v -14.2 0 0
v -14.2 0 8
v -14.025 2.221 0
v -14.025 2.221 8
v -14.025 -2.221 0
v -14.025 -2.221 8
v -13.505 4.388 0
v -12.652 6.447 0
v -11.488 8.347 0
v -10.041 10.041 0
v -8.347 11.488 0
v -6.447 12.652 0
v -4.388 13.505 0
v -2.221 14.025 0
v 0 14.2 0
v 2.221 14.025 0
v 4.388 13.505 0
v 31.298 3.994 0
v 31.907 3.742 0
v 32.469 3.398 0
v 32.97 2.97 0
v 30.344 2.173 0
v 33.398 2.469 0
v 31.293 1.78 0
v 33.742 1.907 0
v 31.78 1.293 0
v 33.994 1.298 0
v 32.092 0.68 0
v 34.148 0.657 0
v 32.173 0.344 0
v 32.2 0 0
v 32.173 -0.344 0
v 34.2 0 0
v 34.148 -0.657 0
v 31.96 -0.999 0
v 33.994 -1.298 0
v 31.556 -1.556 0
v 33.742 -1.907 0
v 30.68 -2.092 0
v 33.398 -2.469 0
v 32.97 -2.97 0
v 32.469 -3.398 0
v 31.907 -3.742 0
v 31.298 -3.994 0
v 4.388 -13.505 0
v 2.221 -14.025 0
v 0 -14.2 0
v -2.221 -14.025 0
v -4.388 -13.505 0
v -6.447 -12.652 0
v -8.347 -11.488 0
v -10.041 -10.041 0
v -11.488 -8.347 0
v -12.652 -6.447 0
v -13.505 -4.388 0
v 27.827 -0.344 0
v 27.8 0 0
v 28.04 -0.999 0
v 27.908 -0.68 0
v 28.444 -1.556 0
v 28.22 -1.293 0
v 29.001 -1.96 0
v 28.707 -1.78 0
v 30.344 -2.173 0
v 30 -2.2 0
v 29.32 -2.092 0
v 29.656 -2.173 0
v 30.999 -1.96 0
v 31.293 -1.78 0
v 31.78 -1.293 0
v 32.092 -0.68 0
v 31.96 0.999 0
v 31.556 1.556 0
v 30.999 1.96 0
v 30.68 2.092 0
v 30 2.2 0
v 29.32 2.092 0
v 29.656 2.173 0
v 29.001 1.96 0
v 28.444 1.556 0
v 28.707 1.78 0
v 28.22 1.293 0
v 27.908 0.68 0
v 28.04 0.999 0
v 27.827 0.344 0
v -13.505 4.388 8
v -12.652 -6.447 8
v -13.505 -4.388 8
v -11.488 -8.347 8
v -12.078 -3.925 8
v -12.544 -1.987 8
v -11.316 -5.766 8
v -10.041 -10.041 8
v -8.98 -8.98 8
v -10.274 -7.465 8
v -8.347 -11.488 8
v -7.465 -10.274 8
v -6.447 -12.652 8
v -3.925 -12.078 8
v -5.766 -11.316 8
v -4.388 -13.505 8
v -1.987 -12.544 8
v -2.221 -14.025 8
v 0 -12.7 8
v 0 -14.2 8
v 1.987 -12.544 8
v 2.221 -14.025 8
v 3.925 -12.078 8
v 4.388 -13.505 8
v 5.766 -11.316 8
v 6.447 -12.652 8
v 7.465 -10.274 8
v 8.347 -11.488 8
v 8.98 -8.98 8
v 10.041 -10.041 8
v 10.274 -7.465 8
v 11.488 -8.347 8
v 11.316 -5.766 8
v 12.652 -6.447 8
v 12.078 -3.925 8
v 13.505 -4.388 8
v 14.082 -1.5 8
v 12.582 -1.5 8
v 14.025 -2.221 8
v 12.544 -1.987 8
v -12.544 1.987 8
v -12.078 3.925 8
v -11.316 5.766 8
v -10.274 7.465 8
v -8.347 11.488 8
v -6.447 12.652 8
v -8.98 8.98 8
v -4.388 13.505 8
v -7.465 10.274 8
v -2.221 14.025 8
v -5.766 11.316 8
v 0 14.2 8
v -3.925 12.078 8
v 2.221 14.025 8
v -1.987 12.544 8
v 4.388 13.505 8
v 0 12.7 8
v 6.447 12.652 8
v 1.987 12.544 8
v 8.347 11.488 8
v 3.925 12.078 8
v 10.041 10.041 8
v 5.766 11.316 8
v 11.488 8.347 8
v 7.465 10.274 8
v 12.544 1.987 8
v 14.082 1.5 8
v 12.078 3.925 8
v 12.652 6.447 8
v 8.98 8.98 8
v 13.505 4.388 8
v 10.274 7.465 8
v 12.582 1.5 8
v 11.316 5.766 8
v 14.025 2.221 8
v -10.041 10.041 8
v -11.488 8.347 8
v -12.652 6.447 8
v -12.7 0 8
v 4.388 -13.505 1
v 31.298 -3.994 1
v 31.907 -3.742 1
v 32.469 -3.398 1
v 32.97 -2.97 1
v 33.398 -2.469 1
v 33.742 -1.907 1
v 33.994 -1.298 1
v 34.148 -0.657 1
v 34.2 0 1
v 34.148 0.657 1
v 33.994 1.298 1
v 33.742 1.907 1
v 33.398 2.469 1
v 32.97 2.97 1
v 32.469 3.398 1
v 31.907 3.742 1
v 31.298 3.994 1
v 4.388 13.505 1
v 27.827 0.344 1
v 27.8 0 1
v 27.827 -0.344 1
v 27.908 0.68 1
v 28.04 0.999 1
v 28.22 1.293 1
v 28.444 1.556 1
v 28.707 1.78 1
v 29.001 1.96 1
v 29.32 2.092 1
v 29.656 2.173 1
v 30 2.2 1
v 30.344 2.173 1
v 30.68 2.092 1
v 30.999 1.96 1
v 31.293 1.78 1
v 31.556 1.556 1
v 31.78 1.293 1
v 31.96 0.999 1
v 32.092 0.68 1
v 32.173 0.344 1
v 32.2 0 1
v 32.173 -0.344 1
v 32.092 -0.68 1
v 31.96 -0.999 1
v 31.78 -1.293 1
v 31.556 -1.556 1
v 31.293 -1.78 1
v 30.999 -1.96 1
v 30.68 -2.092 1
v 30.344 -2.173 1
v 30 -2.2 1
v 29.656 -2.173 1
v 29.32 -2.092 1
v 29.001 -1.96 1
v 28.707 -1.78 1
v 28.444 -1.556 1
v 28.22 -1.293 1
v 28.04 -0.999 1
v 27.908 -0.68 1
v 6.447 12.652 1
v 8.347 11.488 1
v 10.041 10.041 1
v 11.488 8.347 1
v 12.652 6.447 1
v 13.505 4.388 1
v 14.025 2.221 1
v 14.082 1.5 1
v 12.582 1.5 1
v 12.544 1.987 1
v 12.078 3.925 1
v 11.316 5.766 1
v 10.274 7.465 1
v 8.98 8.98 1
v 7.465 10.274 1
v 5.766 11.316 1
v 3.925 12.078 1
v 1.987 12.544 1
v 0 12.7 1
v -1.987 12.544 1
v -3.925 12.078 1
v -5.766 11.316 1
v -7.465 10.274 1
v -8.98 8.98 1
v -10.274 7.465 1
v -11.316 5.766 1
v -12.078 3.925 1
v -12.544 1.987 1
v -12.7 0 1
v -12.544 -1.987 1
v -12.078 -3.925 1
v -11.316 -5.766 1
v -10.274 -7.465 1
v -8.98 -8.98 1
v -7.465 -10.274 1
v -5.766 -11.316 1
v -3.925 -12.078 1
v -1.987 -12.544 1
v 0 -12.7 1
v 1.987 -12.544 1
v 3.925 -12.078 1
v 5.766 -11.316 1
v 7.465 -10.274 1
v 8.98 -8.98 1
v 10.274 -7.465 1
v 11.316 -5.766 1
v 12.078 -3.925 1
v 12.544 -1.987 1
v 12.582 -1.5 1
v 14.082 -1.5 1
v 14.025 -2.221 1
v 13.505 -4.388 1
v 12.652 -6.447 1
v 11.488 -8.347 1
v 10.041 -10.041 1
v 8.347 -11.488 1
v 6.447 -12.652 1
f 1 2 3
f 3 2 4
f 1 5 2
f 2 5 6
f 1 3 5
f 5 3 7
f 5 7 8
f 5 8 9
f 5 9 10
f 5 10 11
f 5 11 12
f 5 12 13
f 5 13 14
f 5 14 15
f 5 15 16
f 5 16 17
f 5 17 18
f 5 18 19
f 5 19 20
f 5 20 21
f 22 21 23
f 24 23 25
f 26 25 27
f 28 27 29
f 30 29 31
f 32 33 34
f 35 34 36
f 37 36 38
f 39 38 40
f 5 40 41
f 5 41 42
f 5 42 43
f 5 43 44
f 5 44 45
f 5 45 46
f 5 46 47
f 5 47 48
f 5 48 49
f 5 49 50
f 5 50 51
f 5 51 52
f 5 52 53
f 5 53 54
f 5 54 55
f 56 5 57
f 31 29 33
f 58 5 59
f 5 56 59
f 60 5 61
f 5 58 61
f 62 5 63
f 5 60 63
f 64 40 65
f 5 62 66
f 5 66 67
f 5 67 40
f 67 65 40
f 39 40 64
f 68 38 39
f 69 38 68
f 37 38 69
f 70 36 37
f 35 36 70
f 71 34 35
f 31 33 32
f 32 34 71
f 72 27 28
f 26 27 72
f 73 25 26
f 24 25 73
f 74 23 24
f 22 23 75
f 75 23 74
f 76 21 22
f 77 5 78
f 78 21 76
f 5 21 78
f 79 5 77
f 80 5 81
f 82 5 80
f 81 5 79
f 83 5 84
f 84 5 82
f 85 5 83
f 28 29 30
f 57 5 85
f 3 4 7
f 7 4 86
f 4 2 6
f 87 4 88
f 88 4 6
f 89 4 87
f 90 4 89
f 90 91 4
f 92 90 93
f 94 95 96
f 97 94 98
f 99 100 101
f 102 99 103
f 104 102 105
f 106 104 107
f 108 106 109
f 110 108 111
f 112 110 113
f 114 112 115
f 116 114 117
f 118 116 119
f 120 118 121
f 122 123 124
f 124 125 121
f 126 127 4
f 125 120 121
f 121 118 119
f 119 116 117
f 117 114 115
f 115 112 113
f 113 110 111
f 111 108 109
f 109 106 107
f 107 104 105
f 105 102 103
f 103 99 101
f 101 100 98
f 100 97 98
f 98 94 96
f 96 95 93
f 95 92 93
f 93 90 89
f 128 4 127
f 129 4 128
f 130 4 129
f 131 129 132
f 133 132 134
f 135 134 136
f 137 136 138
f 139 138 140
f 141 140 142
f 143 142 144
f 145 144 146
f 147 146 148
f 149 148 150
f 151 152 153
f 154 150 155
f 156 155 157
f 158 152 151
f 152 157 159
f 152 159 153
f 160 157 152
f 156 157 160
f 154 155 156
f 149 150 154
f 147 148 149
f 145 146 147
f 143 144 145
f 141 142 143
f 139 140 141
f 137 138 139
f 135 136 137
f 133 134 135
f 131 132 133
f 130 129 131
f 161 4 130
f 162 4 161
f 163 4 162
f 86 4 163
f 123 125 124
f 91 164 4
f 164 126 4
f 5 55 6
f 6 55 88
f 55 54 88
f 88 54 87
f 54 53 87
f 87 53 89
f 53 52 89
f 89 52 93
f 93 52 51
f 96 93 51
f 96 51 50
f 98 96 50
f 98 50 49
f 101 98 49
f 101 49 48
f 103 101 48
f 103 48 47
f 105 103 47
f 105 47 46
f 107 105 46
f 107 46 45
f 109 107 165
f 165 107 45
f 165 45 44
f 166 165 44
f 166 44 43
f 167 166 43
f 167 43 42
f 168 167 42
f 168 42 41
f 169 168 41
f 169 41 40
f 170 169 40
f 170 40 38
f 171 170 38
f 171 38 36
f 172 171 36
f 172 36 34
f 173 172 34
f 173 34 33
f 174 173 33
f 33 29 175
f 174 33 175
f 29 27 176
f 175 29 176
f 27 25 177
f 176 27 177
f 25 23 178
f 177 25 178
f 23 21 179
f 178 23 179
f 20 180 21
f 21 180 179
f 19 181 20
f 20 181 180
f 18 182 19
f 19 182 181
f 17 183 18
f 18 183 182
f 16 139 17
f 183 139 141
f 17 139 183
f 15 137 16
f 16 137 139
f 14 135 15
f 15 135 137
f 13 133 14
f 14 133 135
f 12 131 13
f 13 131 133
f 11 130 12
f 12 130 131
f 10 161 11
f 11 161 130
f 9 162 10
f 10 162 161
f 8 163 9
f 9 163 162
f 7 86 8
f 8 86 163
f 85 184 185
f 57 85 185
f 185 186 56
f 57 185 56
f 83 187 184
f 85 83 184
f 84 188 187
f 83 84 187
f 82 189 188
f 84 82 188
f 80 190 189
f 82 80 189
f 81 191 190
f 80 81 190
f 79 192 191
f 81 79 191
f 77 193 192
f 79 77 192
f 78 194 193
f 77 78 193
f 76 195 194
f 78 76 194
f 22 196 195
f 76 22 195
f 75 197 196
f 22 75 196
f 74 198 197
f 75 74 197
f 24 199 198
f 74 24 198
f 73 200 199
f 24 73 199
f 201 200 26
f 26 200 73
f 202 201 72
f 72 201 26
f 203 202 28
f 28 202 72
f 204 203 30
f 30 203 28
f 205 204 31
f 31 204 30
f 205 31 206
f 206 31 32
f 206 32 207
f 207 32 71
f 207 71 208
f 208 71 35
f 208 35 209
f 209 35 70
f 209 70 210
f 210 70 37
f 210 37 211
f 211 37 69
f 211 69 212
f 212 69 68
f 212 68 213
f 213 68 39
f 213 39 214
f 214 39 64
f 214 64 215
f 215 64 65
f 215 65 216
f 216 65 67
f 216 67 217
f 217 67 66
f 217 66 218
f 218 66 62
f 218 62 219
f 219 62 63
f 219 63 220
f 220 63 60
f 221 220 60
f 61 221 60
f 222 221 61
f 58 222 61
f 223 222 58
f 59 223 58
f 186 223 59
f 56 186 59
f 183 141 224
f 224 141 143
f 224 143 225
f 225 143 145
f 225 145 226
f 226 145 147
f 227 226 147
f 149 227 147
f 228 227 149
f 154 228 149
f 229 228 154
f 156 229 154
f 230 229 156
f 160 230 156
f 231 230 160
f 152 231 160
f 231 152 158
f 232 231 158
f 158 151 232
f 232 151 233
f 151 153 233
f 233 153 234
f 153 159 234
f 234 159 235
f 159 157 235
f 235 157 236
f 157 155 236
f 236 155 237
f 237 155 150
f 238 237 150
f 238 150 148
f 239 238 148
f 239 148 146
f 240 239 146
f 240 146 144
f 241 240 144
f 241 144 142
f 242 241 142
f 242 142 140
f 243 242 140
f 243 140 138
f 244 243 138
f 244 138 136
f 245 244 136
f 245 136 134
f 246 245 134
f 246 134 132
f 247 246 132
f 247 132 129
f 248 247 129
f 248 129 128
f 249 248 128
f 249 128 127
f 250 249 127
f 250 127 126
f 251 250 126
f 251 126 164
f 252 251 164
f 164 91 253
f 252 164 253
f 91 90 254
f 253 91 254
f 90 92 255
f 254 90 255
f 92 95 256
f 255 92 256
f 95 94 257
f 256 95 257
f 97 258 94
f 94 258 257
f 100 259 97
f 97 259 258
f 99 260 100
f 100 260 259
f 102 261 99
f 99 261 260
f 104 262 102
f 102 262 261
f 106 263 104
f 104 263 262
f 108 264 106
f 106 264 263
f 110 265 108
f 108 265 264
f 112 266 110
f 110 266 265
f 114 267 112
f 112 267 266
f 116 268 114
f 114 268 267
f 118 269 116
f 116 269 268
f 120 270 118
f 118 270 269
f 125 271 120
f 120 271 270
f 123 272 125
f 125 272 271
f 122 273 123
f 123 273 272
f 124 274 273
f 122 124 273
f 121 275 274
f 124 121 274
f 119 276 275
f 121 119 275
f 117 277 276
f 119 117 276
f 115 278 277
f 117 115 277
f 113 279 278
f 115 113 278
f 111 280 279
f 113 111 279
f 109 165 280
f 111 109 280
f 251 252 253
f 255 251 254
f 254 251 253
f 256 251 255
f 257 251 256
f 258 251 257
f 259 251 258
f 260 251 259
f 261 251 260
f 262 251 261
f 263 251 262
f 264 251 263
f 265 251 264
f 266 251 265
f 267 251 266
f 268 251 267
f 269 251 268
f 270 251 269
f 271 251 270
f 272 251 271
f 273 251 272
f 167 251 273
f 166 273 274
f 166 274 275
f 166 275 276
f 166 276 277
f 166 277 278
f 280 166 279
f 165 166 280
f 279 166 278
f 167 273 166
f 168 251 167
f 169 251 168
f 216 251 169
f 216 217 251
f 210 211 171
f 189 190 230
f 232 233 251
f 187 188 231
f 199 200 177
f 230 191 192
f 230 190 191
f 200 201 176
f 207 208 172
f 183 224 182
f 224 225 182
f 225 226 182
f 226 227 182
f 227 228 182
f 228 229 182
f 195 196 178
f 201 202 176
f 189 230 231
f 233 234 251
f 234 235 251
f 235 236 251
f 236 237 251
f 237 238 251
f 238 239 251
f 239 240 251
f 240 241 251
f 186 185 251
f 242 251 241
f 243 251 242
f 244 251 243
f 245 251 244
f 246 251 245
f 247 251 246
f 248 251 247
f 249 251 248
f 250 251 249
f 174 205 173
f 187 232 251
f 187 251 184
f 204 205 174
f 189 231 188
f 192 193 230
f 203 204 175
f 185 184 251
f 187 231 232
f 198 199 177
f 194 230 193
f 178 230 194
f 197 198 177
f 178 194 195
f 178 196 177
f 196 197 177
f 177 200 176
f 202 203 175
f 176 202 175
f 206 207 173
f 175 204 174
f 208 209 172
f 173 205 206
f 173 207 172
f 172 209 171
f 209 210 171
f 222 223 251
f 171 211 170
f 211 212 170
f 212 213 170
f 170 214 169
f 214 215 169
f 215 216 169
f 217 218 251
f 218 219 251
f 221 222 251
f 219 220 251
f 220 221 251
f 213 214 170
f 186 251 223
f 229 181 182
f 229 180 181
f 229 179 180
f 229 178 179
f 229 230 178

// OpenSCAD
tolerance = .4;
wall = 3;
hole_offset = 30;
$fn=40;

pillamp();
module pillamp() {

difference() {

	cylinder(h = 8, r = (25+wall+tolerance)/2);
	cylinder(h = 8, r = (25+tolerance)/2);

#	translate([0,-1.5,0]) cube([20,3,10]);

	


}

	difference() {
		hull() {
			cylinder(h = 1, r = (25+tolerance+wall)/2);
			translate([hole_offset,0,0]) 	cylinder(h = 1, r = (8+tolerance)/2);
		}
		translate([hole_offset,0,0]) cylinder(h = 1, r = (4+tolerance)/2);
	}		

}
